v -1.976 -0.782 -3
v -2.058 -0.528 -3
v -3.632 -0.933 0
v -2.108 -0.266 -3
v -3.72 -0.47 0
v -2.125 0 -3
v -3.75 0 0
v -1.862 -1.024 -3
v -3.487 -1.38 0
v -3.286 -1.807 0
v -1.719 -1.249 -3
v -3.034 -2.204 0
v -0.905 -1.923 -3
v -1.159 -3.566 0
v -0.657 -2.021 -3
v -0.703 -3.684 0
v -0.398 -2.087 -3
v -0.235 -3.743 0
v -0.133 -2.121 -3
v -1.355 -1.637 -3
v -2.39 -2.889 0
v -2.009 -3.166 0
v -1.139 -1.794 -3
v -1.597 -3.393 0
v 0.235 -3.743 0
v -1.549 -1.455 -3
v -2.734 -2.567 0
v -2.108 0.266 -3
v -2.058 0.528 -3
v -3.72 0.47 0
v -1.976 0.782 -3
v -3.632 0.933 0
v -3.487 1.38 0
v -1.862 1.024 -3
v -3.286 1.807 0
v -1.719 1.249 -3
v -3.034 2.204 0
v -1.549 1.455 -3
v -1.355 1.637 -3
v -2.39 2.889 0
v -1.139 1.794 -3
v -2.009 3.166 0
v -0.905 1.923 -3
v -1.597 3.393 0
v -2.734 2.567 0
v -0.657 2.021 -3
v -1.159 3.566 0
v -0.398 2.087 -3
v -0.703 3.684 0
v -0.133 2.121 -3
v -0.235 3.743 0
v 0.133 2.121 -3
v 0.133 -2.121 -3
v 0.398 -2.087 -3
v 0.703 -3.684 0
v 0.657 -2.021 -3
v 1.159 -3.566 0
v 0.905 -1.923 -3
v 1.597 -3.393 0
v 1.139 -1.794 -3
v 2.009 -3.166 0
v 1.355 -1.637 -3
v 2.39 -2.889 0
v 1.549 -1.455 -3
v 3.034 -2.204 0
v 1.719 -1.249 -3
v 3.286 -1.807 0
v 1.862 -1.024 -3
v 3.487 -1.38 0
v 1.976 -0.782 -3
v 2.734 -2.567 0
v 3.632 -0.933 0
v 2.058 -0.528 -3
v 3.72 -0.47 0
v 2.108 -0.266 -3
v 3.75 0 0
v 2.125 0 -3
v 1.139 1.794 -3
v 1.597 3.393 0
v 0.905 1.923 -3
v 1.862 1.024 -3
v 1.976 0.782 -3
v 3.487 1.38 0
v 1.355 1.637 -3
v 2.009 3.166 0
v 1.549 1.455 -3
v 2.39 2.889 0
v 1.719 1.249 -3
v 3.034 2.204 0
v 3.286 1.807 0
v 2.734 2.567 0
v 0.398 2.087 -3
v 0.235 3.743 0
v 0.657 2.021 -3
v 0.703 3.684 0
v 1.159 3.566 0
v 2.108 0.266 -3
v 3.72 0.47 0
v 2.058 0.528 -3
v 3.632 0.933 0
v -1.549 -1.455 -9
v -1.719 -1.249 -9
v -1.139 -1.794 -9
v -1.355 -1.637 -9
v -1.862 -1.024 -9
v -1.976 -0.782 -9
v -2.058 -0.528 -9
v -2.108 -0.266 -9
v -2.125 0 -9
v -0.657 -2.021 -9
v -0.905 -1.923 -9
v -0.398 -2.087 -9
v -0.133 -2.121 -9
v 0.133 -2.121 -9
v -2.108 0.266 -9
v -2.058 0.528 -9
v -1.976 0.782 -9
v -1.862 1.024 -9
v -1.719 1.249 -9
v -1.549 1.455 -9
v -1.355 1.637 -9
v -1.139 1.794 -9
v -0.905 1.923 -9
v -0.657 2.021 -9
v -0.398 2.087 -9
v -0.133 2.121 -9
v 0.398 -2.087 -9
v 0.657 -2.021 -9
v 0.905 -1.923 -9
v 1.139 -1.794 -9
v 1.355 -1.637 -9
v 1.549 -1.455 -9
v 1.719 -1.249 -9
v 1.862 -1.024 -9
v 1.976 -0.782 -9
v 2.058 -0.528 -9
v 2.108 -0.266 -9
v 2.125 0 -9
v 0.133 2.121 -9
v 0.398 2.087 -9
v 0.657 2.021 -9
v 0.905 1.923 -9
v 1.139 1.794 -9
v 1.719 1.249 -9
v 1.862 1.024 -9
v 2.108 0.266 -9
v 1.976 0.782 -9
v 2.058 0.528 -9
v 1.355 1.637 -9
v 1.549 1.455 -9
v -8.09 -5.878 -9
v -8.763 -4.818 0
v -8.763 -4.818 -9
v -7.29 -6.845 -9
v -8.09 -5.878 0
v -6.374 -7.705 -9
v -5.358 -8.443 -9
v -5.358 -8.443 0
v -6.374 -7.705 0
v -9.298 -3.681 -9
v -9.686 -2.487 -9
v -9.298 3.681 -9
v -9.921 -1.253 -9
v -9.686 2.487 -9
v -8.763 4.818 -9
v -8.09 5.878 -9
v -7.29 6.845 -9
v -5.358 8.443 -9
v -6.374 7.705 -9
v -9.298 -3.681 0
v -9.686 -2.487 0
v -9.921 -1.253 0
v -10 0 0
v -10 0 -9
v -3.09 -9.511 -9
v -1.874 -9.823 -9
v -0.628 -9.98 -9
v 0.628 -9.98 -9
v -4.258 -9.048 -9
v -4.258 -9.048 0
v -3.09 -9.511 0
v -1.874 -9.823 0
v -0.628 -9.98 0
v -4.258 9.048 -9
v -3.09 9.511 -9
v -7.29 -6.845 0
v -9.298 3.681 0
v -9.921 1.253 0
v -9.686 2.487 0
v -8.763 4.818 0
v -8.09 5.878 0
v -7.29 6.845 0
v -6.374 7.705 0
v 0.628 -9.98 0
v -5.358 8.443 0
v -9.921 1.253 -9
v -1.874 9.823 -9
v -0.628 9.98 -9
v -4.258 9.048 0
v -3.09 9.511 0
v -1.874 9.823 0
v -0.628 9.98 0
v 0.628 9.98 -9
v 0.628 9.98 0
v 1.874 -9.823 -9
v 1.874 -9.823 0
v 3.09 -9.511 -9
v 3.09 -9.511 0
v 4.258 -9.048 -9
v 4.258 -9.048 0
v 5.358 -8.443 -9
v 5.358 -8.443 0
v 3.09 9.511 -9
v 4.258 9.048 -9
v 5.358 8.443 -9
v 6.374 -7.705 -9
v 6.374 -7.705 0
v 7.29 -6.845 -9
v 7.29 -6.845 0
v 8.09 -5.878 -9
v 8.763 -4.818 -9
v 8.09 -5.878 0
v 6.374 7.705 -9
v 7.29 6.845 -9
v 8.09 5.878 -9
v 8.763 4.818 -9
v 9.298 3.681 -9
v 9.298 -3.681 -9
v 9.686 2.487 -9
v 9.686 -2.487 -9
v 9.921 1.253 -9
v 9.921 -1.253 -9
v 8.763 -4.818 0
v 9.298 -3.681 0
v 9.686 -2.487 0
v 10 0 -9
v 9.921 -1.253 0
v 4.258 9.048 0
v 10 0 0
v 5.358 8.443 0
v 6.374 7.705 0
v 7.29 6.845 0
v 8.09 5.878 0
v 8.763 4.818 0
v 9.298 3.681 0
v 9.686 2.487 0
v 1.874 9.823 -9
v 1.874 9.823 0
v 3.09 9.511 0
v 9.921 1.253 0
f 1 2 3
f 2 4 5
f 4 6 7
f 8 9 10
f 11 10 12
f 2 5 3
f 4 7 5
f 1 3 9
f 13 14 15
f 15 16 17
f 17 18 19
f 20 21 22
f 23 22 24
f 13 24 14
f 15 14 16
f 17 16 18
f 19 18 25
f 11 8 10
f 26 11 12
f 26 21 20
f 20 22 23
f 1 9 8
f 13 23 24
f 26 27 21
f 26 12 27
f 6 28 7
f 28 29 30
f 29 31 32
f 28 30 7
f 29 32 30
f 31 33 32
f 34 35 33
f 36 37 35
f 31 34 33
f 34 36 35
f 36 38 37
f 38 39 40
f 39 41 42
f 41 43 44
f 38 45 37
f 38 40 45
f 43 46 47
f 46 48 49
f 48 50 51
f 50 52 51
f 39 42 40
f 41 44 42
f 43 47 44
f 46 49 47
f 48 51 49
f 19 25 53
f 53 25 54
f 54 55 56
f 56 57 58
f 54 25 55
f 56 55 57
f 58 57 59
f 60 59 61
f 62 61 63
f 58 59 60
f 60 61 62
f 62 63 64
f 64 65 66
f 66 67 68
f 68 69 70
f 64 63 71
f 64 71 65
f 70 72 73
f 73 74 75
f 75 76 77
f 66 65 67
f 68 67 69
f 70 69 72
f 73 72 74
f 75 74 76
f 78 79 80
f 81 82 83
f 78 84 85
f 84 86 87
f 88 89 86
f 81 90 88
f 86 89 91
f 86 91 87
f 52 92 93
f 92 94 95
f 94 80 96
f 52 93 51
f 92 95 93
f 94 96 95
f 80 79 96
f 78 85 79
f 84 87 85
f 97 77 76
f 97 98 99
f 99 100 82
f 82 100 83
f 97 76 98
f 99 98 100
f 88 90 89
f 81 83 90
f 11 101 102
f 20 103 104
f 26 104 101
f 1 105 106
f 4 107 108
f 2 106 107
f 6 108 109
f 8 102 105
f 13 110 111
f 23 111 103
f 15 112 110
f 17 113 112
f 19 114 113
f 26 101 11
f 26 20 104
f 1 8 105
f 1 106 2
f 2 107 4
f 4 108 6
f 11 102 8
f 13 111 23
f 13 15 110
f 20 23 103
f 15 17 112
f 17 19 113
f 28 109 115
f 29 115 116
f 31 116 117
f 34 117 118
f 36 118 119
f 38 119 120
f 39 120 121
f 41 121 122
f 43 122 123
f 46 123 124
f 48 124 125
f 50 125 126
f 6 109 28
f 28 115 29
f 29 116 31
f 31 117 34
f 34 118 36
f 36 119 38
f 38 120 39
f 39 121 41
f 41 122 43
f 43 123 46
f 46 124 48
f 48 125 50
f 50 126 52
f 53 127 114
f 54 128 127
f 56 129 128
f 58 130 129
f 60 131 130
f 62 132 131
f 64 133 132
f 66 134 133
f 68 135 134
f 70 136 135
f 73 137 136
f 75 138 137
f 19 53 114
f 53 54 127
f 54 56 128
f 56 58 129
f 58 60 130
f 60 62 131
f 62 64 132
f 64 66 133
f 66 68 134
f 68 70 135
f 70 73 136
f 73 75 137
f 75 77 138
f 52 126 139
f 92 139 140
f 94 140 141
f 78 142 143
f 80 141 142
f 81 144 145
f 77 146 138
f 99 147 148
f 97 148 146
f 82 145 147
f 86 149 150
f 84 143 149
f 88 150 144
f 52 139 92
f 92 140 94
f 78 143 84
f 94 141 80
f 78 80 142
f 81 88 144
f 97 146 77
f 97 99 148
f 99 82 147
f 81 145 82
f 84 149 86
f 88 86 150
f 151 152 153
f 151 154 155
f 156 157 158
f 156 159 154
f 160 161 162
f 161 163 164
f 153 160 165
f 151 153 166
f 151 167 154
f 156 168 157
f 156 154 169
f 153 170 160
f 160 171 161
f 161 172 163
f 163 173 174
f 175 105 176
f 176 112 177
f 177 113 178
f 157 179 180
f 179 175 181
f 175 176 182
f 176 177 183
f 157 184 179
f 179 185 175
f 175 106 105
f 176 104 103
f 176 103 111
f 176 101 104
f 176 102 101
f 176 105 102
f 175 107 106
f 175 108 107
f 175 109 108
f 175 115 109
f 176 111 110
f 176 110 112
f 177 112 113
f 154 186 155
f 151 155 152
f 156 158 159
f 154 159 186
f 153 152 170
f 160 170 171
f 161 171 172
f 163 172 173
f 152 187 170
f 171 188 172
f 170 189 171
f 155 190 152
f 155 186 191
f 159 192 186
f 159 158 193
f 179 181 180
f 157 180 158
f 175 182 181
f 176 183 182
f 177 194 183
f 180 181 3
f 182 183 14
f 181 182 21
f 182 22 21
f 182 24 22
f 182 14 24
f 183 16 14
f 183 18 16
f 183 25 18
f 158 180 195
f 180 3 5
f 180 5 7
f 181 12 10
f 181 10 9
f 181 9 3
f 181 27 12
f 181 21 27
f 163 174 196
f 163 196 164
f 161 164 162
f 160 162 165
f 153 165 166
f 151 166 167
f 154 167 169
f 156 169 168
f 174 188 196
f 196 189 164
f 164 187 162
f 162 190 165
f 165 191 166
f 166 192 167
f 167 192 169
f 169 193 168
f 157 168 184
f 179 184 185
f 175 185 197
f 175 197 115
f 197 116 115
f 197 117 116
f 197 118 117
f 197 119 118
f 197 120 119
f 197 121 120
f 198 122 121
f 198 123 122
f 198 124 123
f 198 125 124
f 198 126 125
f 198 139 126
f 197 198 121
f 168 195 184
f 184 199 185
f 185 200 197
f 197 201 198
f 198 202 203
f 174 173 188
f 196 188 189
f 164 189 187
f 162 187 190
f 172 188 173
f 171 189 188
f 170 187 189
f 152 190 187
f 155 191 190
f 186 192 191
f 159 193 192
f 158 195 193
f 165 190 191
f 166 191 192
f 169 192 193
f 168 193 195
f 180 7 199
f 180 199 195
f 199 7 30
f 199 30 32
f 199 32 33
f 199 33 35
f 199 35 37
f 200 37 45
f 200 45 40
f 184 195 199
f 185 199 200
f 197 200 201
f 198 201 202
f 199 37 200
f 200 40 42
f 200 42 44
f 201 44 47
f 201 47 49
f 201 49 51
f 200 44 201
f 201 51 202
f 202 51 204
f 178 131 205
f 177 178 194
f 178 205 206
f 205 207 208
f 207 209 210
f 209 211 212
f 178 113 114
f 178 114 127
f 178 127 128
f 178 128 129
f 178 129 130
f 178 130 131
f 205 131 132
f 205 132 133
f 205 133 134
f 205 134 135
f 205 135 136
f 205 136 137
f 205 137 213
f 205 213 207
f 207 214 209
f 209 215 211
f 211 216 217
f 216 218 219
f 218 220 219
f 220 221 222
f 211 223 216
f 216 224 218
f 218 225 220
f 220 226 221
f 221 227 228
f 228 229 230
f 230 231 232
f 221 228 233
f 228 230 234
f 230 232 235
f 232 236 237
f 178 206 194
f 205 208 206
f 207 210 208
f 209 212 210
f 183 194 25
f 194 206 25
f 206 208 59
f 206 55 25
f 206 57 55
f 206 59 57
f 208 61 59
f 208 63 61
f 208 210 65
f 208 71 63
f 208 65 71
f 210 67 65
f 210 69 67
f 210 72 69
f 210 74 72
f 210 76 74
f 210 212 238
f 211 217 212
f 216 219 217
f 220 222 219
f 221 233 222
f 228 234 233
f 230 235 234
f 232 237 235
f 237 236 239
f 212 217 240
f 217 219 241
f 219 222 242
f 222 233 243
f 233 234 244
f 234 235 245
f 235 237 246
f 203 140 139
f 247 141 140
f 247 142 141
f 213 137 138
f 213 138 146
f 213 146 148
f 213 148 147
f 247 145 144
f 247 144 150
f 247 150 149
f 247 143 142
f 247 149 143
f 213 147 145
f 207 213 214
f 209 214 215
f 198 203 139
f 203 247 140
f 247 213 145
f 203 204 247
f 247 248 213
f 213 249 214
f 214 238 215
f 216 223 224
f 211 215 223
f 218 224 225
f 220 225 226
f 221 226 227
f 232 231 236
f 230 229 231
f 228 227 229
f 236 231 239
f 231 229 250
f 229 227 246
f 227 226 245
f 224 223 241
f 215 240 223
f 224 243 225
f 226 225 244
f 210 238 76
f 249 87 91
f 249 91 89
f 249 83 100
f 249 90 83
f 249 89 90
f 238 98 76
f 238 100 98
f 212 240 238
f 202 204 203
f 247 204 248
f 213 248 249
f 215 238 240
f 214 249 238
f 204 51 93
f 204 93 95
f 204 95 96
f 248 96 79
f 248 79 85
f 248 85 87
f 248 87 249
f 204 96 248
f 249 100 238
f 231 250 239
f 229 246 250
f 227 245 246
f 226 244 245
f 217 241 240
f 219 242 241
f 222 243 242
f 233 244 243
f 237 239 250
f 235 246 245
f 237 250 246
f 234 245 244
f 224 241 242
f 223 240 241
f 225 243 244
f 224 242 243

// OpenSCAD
$fn = 50;

difference() {
	union() {
		translate(v = [0, 0, -9.0]) {
			cylinder(h = 9, r = 10.0);
		}
	}
	union() {
		translate(v = [0, 0, 0]) {
			rotate(a = [0, 0, 0]) {
				difference() {
					union() {
						translate(v = [0, 0, -12.0]) {
							cylinder(h = 12, r = 2.0);
						}
						translate(v = [0, 0, -3]) {
							cylinder(h = 3, r1 = 2.125, r2 = 3.75);
						}
						translate(v = [0, 0, -12.0]) {
							cylinder(h = 12, r = 2.125);
						}
						translate(v = [0, 0, -12.0]) {
							cylinder(h = 12, r = 2.0);
						}
					}
					union();
				}
			}
		}
	}
}
